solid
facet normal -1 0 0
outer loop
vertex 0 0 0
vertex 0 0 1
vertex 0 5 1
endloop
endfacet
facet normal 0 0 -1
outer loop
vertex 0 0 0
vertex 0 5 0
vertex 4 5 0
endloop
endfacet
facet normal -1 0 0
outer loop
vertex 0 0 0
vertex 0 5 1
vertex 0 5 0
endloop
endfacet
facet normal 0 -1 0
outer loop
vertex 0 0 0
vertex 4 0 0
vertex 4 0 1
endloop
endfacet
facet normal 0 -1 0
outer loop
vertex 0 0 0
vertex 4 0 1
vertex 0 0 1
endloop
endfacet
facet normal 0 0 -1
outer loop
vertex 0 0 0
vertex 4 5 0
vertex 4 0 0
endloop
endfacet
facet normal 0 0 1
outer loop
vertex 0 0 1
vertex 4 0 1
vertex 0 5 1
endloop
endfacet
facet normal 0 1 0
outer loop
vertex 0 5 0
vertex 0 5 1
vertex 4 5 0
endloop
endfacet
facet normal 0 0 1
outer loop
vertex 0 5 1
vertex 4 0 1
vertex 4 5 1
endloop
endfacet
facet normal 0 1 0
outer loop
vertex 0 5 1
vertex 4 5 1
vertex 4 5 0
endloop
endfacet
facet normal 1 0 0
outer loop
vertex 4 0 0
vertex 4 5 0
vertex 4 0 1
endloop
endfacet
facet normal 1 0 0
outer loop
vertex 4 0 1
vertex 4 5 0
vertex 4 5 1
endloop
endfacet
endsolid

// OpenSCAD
/* Warning, this is a very basic generator with a lot of approximation 
input data : [VQFN, 5FC, 4x5x1.0mm, 24, , A, C04-25445A]
generated by com.zoubworld.electronics.cad.model3d.Basic
Date : Sun Feb 15 10:50:49 CET 2026
*/

//body
color("black")
translate([0,0,0])
cube([4.0,5.0,1.0], center=false);
